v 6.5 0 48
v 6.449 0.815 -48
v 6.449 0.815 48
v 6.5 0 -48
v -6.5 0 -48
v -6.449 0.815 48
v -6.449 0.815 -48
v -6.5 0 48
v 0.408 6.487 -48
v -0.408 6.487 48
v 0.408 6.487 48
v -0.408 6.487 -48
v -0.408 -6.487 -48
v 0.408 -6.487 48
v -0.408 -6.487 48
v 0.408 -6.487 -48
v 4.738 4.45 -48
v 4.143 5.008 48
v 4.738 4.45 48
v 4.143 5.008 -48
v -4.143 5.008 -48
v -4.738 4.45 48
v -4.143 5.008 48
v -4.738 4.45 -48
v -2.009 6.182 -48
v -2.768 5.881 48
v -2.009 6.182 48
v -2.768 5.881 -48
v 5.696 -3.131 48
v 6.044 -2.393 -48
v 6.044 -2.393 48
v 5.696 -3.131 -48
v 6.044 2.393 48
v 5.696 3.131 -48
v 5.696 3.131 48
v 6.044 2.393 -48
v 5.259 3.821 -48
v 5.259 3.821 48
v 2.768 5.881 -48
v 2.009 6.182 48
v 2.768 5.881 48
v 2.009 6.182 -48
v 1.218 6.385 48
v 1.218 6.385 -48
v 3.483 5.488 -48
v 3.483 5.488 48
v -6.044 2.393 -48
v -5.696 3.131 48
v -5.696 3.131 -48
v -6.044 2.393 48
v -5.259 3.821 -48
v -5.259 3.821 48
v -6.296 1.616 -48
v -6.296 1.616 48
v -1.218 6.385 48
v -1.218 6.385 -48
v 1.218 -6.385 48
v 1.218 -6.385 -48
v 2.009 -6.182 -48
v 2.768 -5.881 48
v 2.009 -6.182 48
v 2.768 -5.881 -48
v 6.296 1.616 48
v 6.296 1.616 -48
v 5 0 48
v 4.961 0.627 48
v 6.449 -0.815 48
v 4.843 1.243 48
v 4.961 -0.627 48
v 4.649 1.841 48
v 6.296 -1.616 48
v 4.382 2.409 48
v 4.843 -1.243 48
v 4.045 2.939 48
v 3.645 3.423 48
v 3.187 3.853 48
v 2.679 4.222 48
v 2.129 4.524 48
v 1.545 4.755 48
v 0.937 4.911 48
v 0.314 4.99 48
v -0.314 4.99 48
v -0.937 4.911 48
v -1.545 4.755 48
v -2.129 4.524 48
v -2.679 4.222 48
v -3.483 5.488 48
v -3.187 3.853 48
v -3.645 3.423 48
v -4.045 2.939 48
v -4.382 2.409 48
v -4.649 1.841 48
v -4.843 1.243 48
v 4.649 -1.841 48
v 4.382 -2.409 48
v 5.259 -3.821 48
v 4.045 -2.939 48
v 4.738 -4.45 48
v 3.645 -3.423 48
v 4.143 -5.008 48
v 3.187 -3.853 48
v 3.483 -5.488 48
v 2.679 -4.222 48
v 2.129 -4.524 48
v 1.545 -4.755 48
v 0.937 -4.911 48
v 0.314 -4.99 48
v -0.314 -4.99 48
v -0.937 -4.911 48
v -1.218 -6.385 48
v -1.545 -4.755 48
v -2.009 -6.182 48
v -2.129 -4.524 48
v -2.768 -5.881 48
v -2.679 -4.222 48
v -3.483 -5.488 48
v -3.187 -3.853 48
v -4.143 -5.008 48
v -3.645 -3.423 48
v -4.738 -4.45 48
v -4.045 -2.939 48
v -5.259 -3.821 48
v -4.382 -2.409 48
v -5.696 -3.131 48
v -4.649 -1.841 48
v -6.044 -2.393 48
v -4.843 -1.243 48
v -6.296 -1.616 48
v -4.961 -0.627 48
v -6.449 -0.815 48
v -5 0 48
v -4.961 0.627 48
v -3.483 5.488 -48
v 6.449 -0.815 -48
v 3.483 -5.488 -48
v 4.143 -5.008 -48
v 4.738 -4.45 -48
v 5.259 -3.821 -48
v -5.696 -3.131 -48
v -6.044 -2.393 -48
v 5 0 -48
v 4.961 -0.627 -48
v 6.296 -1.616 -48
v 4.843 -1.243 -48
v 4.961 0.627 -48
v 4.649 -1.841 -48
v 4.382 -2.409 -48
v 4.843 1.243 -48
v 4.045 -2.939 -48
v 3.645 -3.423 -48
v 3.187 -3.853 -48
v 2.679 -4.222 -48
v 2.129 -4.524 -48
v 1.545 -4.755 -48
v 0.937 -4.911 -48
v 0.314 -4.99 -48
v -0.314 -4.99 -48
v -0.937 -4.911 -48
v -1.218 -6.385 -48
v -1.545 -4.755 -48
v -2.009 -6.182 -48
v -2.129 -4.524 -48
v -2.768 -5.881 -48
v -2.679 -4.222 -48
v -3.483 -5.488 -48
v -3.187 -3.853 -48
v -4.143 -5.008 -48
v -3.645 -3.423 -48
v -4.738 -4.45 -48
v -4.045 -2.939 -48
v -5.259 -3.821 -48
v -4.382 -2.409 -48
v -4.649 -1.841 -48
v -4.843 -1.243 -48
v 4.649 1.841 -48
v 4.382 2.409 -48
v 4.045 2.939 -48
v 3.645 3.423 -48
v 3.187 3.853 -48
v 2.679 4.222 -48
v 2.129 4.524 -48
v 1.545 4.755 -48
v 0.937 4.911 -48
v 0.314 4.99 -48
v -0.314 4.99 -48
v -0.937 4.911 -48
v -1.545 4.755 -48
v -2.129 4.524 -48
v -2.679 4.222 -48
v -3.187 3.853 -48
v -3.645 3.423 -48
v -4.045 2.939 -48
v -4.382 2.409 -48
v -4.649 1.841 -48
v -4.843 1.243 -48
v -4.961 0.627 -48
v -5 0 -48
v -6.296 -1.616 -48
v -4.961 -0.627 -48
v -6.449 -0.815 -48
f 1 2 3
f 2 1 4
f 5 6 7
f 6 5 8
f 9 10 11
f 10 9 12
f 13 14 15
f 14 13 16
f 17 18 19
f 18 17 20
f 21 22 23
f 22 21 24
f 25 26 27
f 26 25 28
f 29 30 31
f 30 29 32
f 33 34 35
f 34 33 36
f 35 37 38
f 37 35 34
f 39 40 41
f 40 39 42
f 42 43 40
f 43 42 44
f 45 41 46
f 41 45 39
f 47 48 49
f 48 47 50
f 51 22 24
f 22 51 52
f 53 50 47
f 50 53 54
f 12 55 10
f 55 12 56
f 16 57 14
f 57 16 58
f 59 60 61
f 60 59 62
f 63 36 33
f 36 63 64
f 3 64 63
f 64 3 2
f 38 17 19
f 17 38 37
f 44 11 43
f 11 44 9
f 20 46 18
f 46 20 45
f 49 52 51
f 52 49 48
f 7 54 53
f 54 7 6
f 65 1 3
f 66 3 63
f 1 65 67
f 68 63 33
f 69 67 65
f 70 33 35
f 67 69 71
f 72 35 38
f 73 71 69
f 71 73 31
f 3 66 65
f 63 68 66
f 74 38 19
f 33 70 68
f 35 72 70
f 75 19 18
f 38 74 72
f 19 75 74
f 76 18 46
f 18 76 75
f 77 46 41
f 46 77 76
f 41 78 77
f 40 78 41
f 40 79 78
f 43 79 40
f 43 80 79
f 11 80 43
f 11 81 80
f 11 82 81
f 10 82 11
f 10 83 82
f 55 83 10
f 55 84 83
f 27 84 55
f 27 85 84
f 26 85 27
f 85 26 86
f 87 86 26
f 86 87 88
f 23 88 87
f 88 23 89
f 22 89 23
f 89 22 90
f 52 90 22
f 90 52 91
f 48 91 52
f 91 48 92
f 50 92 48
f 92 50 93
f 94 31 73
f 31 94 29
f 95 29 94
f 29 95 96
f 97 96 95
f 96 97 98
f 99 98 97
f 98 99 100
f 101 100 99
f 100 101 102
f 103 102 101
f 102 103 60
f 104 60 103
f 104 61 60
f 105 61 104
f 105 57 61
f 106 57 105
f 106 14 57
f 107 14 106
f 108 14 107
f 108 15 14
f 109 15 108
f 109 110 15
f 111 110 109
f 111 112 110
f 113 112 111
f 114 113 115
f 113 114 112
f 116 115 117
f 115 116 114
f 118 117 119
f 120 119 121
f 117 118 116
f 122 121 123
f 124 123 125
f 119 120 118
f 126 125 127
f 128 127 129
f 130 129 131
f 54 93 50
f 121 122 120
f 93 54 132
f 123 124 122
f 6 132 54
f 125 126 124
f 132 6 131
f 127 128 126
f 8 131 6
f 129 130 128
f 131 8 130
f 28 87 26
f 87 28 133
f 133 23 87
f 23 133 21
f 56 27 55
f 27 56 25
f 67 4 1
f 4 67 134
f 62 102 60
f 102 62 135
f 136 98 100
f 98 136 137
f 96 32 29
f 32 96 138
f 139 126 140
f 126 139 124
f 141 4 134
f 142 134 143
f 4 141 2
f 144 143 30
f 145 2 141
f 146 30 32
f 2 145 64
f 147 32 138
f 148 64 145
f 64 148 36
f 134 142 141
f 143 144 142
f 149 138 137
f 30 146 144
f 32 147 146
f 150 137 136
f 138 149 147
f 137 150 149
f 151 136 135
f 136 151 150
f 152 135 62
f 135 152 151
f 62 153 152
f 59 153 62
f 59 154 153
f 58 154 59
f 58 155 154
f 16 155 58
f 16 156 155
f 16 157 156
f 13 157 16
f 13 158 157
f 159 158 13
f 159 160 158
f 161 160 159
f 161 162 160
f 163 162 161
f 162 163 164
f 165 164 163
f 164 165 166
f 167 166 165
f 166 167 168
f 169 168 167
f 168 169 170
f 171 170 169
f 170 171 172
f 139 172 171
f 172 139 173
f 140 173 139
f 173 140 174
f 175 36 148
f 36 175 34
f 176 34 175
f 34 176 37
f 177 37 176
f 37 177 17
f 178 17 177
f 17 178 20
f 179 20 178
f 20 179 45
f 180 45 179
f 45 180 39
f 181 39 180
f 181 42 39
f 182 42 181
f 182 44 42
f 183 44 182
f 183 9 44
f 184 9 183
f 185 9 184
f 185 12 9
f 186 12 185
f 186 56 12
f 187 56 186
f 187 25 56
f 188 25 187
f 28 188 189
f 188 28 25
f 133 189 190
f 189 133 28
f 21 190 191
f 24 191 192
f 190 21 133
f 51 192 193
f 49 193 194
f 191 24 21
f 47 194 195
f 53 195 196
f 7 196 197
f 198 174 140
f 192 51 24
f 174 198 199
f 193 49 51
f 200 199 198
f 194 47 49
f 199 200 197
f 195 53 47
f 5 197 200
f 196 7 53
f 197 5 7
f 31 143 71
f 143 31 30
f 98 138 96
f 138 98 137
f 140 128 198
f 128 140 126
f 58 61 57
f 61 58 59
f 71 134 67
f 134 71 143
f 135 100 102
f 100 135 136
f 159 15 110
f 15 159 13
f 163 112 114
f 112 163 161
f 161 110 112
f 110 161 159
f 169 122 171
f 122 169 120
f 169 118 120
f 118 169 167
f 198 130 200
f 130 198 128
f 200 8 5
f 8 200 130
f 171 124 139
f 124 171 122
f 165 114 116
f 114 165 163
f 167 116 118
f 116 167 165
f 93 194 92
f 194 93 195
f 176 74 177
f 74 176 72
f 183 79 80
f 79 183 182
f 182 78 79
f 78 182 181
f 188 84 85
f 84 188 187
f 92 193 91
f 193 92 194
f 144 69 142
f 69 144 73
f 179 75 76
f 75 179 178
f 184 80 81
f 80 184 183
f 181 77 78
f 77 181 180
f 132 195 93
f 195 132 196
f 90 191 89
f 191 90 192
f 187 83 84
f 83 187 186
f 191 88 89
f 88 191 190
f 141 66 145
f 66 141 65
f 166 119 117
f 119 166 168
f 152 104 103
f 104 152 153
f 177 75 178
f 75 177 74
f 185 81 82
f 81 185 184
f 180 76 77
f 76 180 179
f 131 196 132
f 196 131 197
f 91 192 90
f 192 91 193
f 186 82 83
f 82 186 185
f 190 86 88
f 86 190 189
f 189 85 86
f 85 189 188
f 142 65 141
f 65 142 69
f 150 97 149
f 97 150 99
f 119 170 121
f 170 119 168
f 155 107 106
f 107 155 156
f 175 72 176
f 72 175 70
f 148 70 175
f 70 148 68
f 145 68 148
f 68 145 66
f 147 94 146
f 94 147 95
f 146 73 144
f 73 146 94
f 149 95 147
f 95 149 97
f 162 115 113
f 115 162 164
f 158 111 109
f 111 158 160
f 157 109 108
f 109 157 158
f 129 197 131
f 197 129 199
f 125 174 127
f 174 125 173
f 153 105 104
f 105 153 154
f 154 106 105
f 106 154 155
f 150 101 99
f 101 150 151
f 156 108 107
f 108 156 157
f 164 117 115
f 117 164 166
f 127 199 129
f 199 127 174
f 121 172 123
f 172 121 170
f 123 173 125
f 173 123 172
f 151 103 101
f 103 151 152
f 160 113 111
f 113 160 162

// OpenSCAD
$fn = 50;


difference() {
	union() {
		translate(v = [0, 0, -48.0000000000]) {
			cylinder(h = 96, r = 6.5000000000);
		}
	}
	union() {
		translate(v = [0, 0, -100.0000000000]) {
			cylinder(h = 200, r = 5);
		}
	}
}
